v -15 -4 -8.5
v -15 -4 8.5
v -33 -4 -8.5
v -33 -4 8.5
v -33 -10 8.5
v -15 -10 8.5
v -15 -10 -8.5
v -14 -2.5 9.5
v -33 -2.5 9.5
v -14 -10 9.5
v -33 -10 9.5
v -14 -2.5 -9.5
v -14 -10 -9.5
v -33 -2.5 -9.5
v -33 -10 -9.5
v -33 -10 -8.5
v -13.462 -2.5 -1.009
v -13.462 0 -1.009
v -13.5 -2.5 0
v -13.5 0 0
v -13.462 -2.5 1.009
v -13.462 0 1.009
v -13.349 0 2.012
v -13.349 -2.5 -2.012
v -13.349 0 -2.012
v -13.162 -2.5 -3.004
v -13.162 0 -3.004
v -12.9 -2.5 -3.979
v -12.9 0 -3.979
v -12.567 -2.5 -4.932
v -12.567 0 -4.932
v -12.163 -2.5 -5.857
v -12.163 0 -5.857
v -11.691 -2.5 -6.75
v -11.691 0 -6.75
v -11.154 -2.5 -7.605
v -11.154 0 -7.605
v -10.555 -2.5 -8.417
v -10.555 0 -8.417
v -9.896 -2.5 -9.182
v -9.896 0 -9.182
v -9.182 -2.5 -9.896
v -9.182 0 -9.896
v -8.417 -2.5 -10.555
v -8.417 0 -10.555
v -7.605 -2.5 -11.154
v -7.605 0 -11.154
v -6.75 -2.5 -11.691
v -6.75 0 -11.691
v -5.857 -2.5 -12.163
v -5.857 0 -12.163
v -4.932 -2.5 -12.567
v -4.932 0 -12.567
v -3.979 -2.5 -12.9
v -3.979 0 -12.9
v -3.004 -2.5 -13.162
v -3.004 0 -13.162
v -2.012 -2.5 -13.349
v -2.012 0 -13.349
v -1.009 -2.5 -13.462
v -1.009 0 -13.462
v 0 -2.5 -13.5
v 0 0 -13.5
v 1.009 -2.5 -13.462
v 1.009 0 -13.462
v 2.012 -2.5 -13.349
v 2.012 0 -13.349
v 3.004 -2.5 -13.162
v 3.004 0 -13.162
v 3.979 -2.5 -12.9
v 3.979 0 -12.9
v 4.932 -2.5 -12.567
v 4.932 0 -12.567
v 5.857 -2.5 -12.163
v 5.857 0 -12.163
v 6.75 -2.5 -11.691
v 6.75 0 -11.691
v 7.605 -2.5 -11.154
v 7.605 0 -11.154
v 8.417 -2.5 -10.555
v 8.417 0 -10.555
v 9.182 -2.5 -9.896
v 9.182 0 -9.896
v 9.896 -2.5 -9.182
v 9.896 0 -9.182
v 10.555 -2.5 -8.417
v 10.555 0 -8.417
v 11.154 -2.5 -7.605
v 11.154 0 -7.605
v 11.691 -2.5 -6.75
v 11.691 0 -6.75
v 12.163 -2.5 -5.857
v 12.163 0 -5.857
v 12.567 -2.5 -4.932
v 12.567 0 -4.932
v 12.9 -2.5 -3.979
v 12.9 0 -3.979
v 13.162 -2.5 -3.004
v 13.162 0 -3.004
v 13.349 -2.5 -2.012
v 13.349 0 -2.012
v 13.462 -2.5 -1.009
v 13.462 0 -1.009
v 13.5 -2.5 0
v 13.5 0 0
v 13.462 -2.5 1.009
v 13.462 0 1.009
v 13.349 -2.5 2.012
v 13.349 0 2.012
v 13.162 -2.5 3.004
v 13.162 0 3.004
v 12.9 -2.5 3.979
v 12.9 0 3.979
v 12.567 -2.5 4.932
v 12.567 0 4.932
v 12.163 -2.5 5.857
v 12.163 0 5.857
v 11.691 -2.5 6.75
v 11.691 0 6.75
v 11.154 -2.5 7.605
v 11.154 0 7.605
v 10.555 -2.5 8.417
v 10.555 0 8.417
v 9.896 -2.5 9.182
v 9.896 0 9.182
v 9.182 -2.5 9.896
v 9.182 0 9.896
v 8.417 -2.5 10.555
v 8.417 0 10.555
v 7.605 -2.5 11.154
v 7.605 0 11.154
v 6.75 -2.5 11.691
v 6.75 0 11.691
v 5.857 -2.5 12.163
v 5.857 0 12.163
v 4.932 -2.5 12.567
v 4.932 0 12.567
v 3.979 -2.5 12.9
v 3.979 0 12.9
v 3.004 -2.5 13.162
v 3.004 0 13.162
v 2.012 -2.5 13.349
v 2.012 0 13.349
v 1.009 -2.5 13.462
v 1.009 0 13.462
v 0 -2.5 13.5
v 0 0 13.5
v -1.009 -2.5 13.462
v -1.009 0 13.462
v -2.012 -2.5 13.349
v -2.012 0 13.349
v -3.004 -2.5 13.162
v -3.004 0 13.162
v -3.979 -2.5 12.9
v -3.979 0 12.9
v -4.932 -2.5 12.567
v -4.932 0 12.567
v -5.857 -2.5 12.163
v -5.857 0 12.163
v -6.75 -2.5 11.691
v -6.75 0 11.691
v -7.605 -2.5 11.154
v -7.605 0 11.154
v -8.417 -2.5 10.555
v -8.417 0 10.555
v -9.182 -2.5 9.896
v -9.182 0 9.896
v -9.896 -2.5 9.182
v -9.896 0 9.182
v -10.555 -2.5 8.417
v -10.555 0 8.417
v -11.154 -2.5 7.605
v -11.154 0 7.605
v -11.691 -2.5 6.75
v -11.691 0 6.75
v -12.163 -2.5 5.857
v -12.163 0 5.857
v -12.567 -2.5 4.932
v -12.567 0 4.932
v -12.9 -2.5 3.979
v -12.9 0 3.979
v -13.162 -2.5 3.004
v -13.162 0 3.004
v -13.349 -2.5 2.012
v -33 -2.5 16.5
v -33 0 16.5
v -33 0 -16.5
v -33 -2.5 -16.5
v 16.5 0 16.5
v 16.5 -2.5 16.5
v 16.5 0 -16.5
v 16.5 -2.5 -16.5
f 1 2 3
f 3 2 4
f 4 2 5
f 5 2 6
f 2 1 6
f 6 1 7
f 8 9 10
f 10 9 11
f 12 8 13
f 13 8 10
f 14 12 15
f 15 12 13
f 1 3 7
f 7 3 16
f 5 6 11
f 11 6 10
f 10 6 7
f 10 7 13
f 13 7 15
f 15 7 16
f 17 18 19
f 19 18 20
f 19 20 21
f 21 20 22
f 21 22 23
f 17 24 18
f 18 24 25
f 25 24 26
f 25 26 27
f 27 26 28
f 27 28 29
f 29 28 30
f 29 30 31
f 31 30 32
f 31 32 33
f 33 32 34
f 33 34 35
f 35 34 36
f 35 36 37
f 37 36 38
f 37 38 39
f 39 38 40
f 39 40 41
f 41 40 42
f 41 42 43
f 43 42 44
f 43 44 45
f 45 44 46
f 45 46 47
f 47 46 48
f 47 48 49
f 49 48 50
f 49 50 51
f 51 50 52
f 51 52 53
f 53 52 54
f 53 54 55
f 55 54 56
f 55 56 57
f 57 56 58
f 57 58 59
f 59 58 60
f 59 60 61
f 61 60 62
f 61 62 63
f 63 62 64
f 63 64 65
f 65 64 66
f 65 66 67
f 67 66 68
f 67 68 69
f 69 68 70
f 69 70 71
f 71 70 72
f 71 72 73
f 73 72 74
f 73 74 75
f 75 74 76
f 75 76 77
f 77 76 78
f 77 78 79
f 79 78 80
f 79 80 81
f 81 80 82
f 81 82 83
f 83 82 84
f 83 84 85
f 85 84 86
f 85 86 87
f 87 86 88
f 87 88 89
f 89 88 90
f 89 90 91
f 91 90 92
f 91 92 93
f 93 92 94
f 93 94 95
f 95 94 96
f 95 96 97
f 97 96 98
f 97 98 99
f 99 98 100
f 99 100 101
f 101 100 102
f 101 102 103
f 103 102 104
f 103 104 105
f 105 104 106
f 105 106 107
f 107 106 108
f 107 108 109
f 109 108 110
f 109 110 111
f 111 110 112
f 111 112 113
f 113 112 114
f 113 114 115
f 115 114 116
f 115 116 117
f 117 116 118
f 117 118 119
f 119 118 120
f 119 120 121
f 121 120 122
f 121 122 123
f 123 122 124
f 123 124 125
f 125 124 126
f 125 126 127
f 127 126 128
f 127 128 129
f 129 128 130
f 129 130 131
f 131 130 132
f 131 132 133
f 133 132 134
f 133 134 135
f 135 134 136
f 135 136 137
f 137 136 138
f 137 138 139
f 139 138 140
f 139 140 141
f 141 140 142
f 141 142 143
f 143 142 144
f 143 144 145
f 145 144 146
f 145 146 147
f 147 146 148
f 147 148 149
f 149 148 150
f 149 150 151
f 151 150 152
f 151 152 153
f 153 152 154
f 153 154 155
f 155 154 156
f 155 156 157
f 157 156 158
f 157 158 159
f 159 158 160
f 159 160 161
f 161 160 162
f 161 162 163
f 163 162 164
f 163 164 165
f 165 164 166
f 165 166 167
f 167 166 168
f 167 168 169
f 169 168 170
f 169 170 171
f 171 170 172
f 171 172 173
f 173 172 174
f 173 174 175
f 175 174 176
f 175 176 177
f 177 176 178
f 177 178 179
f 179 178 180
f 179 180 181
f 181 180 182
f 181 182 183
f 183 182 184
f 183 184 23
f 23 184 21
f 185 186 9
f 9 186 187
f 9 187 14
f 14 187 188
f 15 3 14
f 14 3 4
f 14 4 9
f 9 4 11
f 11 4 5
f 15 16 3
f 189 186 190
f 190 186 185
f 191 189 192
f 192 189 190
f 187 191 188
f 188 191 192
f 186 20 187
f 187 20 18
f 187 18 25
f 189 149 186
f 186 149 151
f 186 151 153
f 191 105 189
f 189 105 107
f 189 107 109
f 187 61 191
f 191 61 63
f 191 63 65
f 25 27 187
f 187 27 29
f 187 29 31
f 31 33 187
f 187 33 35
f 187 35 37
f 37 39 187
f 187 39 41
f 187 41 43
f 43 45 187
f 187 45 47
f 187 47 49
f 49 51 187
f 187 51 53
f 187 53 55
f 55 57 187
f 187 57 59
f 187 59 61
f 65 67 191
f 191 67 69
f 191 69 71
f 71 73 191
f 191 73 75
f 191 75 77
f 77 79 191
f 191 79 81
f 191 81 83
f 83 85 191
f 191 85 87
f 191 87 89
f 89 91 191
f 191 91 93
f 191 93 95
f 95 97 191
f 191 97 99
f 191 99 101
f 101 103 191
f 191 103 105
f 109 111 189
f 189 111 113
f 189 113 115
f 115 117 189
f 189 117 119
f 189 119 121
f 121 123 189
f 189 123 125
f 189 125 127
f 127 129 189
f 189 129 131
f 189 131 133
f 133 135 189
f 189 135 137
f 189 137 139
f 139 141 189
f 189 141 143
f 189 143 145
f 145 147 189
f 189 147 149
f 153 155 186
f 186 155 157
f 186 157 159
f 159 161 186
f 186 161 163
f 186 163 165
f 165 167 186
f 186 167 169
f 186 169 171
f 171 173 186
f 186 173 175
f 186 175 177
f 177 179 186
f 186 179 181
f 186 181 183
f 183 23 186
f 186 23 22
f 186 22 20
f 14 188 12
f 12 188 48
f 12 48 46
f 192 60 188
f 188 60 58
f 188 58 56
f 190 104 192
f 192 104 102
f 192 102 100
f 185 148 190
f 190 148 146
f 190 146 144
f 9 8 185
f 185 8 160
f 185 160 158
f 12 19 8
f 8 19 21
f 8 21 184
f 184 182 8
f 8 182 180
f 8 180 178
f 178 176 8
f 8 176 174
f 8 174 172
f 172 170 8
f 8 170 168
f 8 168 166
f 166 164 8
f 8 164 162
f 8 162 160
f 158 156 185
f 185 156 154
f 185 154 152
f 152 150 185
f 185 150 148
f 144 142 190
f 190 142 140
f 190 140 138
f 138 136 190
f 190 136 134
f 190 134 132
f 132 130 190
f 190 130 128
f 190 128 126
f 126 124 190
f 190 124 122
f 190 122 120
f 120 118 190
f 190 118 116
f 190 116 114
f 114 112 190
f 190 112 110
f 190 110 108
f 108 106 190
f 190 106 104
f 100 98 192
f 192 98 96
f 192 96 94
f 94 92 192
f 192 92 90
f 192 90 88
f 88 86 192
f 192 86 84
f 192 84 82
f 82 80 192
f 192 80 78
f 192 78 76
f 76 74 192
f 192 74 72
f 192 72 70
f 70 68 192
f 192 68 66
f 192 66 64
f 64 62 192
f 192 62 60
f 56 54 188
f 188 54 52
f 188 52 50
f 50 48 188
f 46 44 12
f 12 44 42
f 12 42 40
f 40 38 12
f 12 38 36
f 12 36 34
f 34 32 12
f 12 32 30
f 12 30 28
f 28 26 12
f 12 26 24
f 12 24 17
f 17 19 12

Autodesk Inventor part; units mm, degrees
ref_plane "YZ Plane" through (0, 0, 0) normal (1, 0, 0) x (0, 1, 0)
ref_plane "XZ Plane" through (0, 0, 0) normal (0, 1, 0) x (-1, 0, 0)
ref_plane "XY Plane" through (0, 0, 0) normal (0, 0, 1) x (1, 0, 0)
sketch "Sketch1" plane through (0, 0, 0) normal (0, 1, 0) x (-1, 0, 0)
  circle A0 centre (0, 0) radius 13.5
  line L0 (0, -13.5) -> (30, -13.5) construction
  line L1 (0, 13.5) -> (30, 13.5) construction
  line L2 (30, 13.5) -> (30, -13.5) construction
  line L3 (0, -13.5) -> (16, -13.5) construction
  line L4 (0, 13.5) -> (16, 13.5) construction
  line L5 (16, 13.5) -> (16, -13.5) construction
  line L6 (30, 13.5) -> (30, 9.5) construction
  line L7 (30, -13.5) -> (30, -9.5) construction
  line L8 (0, -13.5) -> (0, -16.5) construction
  line L9 (0, 13.5) -> (0, 16.5) construction
  line L10 (30, -2.5) -> (33, -2.5) construction
  line L11 (-13.5, 0) -> (-16.5, 0) construction
  line L12 (33, -2.5) -> (33, -16.5)
  line L13 (33, -16.5) -> (0, -16.5)
  line L14 (33, -2.5) -> (33, 16.5)
  line L15 (33, 16.5) -> (0, 16.5)
  line L16 (0, 16.5) -> (-16.5, 16.5)
  line L17 (-16.5, 0) -> (-16.5, 16.5)
  line L18 (0, -16.5) -> (-16.5, -16.5)
  line L19 (-16.5, -16.5) -> (-16.5, 0)
  line L20 (0, 13.5) -> (14, 13.5) construction
  line L21 (0, -13.5) -> (14, -13.5) construction
  line L22 (14, 13.5) -> (14, -13.5) construction
  line L23 (33, 9.5) -> (33, 10.5) construction
  line L24 (33, -9.5) -> (33, -10.5) construction
  line L25 (14, -11.5) -> (14, -6.5) construction
  line L26 (14, 10.5) -> (14, 5.5) construction
  line L27 (0, -13.5) -> (15, -13.5) construction
  line L28 (0, 13.5) -> (15, 13.5) construction
  line L29 (15, 13.5) -> (15, -13.5) construction
  line L30 (14, -11.5) -> (14, -6.5) construction
  line L31 (14, -13.5) -> (14, -8.5) construction
  line L32 (14, 13.5) -> (14, 8.5) construction
  line L33 (14, 8.5) -> (30, 8.5) construction
  line L34 (14, -8.5) -> (30, -8.5) construction
  line L35 (16, -8.5) -> (16, -9.5) construction
  line L36 (16, 8.5) -> (16, 9.5) construction
  line L37 (16, 8.5) -> (16, 7.5) construction
  line L38 (16, -8.5) -> (16, -7.5) construction
  line L39 (30, -9.5) -> (14, -9.5) construction
  line L40 (30, 9.5) -> (14, 9.5) construction
  line L41 (14, -9.5) -> (33, -9.5)
  line L42 (14, 9.5) -> (33, 9.5)
  line L43 (33, 8.5) -> (15, 8.5)
  line L44 (15, 8.5) -> (15, -8.5)
  line L45 (15, -8.5) -> (33, -8.5)
  line L46 (14, -9.5) -> (14, 9.5)
  line L47 (33, -9.5) -> (33, 8.5)
  dimension "d0" = 27
  dimension "d1" = 30
  dimension "d2" = 30
  dimension "d3" = 16
  dimension "d4" = 16
  dimension "d5" = 4
  dimension "d6" = 4
  dimension "d7" = 3
  dimension "d8" = 3
  dimension "d9" = 3
  dimension "d10" = 3
  dimension "d16" = 14
  dimension "d17" = 14
  dimension "d26" = 15
  dimension "d27" = 15
  dimension "d29" = 5
  dimension "d30" = 5
  dimension "d31" = 1
  dimension "d32" = 1
  dimension "d33" = 1
  dimension "d34" = 1
extrude "Extrusion5" add sketch "Sketch1" against normal blind 2.5 contours L12 L13 L18 L19 L17 L16 L15 L14 L42 L46 L41
extrude "Extrusion6" add sketch "Sketch1" against normal blind 10 contours L12 L41 L46 L42 L14 L43 L44 L45
extrude "Extrusion7" add sketch "Sketch1" against normal blind 4 contours L12 L45 L44 L43 L14
properties part number "joystick_test_v2_3DPrint"
